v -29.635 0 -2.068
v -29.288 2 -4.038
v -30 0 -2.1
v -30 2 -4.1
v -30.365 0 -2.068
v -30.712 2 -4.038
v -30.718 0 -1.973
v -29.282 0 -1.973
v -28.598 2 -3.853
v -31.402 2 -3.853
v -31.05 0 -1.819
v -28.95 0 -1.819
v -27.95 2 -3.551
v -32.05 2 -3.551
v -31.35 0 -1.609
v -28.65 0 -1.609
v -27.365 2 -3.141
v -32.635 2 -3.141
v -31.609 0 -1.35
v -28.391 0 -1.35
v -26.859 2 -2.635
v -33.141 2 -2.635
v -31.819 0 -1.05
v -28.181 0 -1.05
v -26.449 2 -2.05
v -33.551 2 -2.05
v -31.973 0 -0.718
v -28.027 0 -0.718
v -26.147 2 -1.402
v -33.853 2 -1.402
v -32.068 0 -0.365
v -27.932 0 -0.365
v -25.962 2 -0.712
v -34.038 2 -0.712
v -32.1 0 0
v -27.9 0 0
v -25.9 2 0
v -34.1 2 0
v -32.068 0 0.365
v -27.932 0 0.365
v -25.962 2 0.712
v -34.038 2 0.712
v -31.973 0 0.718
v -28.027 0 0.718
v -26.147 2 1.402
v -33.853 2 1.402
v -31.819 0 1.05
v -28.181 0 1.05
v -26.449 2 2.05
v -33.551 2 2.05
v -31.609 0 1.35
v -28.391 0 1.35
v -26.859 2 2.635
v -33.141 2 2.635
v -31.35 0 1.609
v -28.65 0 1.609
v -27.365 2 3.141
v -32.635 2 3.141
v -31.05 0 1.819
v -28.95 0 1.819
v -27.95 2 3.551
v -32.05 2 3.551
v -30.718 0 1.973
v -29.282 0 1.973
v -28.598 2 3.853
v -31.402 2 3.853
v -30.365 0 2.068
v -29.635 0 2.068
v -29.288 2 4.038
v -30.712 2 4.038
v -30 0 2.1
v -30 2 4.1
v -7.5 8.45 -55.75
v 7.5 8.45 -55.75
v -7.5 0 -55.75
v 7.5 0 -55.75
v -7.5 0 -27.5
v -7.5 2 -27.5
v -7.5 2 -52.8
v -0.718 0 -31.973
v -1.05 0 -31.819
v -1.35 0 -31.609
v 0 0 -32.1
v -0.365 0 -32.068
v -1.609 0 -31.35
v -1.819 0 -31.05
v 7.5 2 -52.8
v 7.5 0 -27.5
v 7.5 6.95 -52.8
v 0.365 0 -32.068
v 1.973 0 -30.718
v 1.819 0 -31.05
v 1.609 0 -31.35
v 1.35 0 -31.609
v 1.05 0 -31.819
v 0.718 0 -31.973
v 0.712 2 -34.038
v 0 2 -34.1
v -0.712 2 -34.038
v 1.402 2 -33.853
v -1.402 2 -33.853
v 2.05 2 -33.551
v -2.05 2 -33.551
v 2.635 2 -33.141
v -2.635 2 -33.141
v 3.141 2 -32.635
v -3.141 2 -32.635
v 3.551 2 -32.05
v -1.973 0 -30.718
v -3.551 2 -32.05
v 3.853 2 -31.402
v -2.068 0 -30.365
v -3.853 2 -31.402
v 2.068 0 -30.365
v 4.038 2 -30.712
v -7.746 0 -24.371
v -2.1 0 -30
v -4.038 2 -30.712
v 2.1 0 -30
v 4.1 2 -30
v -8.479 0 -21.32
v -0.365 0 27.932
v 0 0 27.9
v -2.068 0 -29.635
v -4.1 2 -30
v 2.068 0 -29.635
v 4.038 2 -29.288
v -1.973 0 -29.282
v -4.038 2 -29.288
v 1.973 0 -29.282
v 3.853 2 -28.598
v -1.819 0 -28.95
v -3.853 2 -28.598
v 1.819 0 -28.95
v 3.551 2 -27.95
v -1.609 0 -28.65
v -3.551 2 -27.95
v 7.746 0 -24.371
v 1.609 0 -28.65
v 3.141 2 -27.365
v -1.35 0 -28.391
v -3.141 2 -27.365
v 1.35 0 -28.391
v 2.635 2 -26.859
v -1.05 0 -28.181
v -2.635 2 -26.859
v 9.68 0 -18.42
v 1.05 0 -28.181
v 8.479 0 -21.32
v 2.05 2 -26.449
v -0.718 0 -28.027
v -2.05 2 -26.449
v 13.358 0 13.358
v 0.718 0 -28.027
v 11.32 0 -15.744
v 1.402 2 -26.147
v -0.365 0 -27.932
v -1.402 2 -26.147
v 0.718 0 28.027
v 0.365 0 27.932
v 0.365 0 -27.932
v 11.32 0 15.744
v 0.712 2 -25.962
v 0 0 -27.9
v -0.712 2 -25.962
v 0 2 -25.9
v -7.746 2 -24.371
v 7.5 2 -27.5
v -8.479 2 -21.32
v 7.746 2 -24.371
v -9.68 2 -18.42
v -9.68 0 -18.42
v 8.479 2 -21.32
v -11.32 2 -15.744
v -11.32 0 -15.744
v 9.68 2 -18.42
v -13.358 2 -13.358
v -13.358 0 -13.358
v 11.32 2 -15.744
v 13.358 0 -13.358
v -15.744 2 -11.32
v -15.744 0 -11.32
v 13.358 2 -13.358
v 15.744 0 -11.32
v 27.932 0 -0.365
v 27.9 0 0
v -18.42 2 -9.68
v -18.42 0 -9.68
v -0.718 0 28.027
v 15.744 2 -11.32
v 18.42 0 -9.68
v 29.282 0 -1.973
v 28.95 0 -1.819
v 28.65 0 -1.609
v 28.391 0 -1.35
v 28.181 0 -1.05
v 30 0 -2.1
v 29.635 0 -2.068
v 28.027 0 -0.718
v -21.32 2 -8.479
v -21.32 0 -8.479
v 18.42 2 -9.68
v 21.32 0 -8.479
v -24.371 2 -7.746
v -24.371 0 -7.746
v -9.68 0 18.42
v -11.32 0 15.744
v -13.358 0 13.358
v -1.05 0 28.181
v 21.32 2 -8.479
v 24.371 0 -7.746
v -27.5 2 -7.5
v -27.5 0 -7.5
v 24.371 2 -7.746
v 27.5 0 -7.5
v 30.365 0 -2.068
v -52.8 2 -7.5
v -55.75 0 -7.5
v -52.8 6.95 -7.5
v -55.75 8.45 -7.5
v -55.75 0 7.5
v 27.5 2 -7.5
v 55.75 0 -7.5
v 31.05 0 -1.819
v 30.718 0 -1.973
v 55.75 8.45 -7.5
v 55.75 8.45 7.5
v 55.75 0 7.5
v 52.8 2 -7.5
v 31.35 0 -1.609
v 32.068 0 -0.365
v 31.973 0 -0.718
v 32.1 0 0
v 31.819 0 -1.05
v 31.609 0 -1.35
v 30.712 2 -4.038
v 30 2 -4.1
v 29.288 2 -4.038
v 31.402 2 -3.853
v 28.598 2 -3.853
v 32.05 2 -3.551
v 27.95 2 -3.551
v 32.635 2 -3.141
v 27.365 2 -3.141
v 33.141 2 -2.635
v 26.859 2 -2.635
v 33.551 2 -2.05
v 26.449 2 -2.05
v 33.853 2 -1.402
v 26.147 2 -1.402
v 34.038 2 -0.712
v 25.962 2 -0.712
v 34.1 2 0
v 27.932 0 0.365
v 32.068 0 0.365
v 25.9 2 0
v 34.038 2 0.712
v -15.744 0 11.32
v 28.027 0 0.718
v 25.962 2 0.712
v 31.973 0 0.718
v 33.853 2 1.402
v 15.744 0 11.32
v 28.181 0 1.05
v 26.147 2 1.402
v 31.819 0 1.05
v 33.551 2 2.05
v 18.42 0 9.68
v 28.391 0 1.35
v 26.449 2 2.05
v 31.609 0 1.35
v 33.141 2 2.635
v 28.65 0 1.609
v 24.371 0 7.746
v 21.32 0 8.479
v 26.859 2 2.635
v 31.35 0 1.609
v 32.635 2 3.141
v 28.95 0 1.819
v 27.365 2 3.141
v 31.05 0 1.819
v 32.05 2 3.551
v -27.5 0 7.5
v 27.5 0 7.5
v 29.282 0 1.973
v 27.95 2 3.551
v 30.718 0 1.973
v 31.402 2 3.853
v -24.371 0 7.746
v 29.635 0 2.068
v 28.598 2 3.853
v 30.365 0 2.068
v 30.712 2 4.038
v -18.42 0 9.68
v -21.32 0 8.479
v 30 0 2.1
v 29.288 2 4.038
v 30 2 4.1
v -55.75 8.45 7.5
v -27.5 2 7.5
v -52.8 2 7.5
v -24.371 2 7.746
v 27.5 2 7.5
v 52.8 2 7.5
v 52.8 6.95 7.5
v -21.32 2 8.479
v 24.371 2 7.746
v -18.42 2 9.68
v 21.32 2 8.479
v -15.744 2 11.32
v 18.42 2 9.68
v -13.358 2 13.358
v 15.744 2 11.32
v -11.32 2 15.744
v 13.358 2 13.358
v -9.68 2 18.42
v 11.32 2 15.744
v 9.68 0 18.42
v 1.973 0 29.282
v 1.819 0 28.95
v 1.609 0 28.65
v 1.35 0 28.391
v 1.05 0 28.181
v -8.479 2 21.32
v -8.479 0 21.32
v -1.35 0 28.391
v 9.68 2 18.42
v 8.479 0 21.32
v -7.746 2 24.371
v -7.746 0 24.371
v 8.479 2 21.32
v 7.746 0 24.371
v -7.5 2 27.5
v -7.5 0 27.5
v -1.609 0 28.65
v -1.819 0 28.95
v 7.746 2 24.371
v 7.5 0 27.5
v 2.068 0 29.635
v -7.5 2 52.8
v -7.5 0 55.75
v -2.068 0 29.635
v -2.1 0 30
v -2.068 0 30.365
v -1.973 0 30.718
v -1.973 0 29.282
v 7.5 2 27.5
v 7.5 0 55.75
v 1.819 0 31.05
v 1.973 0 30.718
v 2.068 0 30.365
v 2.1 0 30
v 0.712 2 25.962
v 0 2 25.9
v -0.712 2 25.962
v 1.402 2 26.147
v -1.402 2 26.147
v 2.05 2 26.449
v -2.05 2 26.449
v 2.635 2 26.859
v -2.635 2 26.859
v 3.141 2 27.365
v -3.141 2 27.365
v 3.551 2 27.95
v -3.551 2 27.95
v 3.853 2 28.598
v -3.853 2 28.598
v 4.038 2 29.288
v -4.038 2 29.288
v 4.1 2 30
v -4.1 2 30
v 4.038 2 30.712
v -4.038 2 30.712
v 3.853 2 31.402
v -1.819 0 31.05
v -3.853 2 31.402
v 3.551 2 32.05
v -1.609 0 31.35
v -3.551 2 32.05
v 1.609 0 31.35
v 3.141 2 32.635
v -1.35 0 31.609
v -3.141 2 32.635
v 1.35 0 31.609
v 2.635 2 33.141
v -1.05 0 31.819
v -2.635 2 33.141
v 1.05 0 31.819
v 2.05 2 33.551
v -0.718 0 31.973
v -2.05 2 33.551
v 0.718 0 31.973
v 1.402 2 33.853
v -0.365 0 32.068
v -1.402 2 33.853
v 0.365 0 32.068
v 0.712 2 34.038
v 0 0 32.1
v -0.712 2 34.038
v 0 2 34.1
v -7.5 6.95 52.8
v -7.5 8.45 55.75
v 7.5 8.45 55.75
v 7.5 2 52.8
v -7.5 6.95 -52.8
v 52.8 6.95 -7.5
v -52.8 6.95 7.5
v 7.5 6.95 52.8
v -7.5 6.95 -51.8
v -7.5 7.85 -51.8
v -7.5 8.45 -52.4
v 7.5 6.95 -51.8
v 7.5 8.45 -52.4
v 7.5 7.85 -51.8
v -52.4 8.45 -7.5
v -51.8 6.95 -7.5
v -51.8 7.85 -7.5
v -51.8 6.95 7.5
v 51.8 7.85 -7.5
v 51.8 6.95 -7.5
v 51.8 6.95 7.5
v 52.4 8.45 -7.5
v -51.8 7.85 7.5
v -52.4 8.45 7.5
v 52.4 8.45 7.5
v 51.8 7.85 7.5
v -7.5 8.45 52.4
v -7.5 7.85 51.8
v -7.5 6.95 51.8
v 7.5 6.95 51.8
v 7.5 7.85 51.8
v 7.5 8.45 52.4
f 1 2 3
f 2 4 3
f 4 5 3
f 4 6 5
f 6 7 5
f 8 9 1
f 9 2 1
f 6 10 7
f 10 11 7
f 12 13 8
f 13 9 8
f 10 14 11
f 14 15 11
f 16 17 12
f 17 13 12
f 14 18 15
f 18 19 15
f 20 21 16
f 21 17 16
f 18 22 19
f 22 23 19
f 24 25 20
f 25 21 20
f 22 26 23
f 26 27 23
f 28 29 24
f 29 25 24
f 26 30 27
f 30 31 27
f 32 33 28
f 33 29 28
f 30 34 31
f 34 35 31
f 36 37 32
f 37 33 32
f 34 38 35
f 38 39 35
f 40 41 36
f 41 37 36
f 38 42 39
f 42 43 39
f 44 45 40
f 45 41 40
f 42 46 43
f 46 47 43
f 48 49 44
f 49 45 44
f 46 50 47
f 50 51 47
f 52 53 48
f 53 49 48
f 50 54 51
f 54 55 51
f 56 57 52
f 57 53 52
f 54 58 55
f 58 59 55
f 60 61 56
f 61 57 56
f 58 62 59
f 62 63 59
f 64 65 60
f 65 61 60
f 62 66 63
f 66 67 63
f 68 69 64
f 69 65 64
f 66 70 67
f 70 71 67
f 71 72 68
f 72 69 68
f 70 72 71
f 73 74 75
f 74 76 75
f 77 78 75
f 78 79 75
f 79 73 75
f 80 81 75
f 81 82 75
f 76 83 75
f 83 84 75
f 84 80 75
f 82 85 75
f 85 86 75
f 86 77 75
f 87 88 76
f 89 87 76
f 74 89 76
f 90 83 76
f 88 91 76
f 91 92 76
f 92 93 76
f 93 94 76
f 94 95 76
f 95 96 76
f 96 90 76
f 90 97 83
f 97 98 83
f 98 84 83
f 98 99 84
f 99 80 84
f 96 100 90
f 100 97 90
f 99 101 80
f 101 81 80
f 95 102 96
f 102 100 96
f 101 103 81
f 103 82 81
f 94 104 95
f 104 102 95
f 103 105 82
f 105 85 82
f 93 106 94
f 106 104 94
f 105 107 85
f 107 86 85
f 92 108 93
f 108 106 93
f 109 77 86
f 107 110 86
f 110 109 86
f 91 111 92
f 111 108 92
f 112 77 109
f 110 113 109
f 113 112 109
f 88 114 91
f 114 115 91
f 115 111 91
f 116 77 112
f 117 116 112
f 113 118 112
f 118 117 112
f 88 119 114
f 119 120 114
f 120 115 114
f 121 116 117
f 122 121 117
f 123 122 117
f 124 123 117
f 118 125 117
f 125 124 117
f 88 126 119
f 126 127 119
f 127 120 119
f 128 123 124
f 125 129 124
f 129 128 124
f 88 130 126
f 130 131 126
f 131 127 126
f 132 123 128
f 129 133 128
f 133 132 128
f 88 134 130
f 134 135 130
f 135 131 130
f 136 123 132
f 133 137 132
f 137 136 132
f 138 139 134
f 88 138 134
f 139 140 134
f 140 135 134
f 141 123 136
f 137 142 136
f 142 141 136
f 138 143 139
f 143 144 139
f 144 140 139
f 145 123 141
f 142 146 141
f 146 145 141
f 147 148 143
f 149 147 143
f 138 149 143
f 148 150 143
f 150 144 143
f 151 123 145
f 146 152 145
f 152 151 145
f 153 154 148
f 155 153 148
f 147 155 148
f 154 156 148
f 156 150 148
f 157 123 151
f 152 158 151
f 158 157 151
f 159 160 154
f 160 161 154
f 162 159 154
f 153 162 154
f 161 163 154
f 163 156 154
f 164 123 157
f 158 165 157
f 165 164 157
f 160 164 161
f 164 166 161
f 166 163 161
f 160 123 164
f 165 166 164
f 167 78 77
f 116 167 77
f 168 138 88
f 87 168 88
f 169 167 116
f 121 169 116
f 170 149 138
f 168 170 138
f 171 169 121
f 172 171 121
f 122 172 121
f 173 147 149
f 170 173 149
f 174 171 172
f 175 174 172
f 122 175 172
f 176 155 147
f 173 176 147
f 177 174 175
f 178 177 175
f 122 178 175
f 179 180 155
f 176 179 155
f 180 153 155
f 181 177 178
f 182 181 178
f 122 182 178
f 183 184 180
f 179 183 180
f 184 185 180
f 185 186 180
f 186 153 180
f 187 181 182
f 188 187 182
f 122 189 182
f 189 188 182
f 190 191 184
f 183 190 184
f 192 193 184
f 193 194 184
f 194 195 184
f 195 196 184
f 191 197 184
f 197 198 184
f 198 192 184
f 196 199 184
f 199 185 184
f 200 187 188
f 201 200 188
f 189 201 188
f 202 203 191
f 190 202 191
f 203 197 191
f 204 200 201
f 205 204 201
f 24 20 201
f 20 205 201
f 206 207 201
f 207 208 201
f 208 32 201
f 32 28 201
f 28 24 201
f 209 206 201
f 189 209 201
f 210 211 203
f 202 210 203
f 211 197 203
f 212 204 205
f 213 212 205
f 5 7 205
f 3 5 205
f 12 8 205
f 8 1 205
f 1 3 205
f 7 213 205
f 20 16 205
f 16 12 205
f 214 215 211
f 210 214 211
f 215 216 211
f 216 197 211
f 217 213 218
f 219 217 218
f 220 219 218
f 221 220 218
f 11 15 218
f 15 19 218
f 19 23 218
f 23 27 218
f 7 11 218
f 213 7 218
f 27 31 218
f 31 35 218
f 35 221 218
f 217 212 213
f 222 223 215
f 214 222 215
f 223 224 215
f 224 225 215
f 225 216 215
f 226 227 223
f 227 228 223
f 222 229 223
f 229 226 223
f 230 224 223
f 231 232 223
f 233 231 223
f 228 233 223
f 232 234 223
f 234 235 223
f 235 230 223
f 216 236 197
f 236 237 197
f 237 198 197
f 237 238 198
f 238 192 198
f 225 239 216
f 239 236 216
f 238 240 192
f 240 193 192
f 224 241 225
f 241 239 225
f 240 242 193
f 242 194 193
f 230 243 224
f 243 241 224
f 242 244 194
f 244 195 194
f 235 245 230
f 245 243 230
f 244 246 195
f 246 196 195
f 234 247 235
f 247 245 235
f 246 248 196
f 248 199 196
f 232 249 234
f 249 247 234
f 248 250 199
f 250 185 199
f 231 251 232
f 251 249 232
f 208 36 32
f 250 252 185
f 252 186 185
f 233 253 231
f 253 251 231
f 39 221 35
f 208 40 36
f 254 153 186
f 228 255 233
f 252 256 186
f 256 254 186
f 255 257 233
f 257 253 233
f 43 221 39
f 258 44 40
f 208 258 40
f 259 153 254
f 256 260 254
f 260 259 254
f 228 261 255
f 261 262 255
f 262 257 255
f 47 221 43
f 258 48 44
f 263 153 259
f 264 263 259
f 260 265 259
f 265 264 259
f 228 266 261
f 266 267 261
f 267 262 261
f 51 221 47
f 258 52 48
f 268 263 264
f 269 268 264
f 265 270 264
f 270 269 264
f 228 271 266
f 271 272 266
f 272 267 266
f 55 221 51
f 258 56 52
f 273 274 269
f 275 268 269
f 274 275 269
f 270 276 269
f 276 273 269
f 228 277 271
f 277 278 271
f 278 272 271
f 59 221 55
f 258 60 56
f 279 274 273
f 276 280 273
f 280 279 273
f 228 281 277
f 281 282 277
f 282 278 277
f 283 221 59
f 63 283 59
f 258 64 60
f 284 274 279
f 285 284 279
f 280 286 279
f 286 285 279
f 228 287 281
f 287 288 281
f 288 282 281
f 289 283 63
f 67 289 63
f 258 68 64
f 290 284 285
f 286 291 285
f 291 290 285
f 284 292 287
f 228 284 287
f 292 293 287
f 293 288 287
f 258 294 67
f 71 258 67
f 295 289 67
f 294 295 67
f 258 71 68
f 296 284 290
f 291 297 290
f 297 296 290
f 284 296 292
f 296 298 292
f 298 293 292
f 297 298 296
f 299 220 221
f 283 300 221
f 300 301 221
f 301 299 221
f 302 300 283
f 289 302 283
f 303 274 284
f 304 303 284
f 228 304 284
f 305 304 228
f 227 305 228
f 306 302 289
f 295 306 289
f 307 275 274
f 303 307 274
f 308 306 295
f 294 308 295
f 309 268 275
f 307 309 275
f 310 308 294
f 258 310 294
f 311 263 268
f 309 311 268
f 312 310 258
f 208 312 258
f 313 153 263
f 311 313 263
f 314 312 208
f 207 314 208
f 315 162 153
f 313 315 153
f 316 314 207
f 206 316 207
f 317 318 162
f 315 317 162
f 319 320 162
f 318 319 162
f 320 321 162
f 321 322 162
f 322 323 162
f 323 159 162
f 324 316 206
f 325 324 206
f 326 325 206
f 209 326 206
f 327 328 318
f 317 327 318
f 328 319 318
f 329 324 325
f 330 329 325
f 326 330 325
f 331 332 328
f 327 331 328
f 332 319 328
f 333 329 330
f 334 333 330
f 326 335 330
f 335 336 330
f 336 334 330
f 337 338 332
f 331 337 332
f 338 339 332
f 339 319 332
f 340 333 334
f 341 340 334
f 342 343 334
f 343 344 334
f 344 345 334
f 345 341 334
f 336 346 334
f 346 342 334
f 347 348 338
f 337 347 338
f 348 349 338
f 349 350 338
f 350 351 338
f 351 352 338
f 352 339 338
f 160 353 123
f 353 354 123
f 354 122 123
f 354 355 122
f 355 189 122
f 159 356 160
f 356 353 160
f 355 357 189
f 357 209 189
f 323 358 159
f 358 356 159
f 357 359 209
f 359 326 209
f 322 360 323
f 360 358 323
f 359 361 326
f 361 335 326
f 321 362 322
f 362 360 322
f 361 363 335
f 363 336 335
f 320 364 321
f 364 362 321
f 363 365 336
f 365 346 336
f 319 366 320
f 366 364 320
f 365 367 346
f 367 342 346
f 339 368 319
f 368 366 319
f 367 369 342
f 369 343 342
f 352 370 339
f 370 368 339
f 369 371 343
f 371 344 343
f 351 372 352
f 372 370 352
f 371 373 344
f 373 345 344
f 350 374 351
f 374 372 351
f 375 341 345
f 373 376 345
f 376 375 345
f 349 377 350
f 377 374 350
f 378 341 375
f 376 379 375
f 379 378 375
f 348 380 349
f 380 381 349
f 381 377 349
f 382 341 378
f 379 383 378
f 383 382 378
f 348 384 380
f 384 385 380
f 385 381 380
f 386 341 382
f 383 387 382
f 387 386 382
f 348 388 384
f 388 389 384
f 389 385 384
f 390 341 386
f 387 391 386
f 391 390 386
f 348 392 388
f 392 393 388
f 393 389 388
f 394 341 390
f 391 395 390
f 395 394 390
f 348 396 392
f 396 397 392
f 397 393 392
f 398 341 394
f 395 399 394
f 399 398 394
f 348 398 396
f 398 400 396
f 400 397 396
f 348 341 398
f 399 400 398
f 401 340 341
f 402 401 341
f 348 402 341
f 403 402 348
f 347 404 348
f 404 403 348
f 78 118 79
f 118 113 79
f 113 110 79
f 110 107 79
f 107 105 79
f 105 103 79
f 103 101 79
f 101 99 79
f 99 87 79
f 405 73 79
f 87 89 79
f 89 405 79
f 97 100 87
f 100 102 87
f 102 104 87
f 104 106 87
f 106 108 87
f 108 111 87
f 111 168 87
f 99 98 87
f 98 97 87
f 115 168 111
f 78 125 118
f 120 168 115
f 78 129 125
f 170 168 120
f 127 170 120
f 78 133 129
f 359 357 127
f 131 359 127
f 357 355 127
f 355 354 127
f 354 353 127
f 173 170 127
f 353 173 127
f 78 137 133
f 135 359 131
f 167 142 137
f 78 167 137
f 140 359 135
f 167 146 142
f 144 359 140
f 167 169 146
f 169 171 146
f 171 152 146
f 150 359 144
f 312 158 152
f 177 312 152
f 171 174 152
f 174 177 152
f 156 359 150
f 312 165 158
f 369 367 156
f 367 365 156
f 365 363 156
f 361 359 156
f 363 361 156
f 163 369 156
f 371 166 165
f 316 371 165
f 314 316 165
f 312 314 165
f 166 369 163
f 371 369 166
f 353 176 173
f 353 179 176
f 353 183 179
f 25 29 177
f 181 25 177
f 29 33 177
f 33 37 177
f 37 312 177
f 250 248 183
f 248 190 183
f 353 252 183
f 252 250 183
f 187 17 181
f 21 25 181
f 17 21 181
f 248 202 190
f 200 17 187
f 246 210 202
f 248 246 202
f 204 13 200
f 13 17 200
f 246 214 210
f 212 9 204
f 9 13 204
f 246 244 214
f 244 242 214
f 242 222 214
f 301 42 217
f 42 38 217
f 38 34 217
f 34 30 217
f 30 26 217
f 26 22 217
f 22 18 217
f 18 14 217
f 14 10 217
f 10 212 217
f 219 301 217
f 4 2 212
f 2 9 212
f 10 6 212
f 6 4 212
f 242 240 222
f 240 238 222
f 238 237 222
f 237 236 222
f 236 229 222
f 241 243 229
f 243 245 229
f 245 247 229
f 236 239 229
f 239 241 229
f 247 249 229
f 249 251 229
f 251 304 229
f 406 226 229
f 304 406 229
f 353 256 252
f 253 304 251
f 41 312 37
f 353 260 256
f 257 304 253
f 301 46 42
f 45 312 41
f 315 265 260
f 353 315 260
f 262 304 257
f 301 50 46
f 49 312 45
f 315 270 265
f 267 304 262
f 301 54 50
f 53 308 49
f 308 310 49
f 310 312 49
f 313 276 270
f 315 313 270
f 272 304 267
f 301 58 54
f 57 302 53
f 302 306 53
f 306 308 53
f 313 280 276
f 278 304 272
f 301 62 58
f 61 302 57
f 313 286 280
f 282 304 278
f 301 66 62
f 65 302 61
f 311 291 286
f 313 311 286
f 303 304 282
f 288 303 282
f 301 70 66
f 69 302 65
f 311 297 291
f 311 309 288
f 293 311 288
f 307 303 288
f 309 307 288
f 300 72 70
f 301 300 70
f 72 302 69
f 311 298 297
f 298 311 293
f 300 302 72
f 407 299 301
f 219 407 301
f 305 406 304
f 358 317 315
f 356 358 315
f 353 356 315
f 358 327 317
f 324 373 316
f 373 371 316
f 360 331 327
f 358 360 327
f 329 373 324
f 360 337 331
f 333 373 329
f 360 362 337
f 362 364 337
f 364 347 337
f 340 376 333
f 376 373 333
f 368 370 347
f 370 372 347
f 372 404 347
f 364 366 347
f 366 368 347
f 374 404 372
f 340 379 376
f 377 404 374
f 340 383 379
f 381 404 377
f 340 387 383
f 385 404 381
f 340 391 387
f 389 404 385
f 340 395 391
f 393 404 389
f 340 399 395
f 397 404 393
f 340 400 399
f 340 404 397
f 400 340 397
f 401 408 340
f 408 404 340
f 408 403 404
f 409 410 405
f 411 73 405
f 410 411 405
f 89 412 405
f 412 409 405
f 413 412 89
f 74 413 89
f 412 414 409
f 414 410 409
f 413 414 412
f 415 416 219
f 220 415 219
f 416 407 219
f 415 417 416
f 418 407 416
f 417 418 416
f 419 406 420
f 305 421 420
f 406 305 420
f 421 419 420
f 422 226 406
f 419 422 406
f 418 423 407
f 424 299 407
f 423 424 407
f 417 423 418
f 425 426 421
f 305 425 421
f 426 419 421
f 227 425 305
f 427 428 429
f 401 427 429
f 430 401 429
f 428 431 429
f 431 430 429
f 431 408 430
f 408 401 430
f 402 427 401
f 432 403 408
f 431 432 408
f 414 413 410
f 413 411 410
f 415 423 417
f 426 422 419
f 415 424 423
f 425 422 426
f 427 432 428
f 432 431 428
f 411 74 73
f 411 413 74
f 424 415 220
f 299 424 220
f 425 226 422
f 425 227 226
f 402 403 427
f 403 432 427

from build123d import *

# Parameters (mm, degrees)
BOSS_EXTRUDE1_DEPTH                            = 2
BOSS_EXTRUDE3_DEPTH                            = 15
BOSS_EXTRUDE4_DEPTH                            = 15
CSK_FOR_M3_5_FLAT_HEAD_MACHINE_SCREW1_AT_COUNT = 2
CSK_FOR_M3_5_FLAT_HEAD_MACHINE_SCREW1_AT_PITCH = 42.426406871
CSK_FOR_M3_5_FLAT_HEAD_MACHINE_SCREW_2_COUNT   = 2
CSK_FOR_M3_5_FLAT_HEAD_MACHINE_SCREW_2_PITCH   = 60
CSK_FOR_M3_5_FLAT_HEAD_MACHINE_SCREW_3_COUNT   = 2
CSK_FOR_M3_5_FLAT_HEAD_MACHINE_SCREW_3_PITCH   = 42.426406871


with BuildPart() as part:
    # Sketch1 → Boss-Extrude1 (new body)
    with BuildSketch(Plane(origin=(0, 0, 0), x_dir=(1, 0, 0), z_dir=(0, 1, 0))):
        with BuildLine():
            Line((-7.5, 55.75), (-7.5, 27.5))
            ThreePointArc((-7.5, 27.5), (-13.357864376, 13.357864376), (-27.5, 7.5))
            Line((-27.5, 7.5), (-55.75, 7.5))
            Line((-55.75, 7.5), (-55.75, -7.5))
            Line((-55.75, -7.5), (-27.5, -7.5))
            ThreePointArc((-27.5, -7.5), (-13.357864376, -13.357864376), (-7.5, -27.5))
            Line((-7.5, -27.5), (-7.5, -55.75))
            Line((-7.5, -55.75), (7.5, -55.75))
            Line((7.5, -55.75), (7.5, -27.5))
            ThreePointArc((7.5, -27.5), (13.357864376, -13.357864376), (27.5, -7.5))
            Line((27.5, -7.5), (55.75, -7.5))
            Line((55.75, -7.5), (55.75, 7.5))
            Line((55.75, 7.5), (27.5, 7.5))
            ThreePointArc((27.5, 7.5), (13.357864376, 13.357864376), (7.5, 27.5))
            Line((7.5, 27.5), (7.5, 55.75))
            Line((7.5, 55.75), (-7.5, 55.75))
        make_face()
    extrude(amount=BOSS_EXTRUDE1_DEPTH)

    # Sketch3 → Boss-Extrude3 (add)
    with BuildSketch(Plane(origin=(7.5, 0, 0), x_dir=(0, 0, -1), z_dir=(1, 0, 0))):
        Polygon((55.75, 2), (55.75, 8.45), (52.4, 8.45), (51.8, 7.85), (51.8, 6.95), (52.8, 6.95), (52.8, 2), align=None)
    boss_extrude3 = extrude(amount=-BOSS_EXTRUDE3_DEPTH)

    # Mirror1: Boss-Extrude3 across plane
    add(boss_extrude3.mirror(Plane.XY))

    # Sketch6 → Boss-Extrude4 (add)
    with BuildSketch(Plane(origin=(0, 0, -7.5), x_dir=(-1, 0, 0), z_dir=(0, 0, -1))):
        Polygon((55.75, 2), (55.75, 8.45), (52.4, 8.45), (51.8, 7.85), (51.8, 6.95), (52.8, 6.95), (52.8, 2), align=None)
    boss_extrude4 = extrude(amount=-BOSS_EXTRUDE4_DEPTH)

    # Mirror2: Boss-Extrude4 across plane
    add(boss_extrude4.mirror(Plane(origin=(0, 0, 0), x_dir=(0, 0, 1), z_dir=(1, 0, 0))))

    # Sketch9 → CSK for M3.5 Flat Head Machine Screw1 (revolve, cut)
    with BuildSketch(Plane(origin=(0, 2, 30), x_dir=(0, 0, 1), z_dir=(1, 0, 0))):
        Polygon((0, 0), (0, 2), (1.95, 2), (1.95, 2.15), (4.1, 0), align=None)
    csk_for_m3_5_flat_head_machine_screw1 = revolve(axis=Axis((0, 8.35, 30), (0, -1, 0)), mode=Mode.SUBTRACT)

    # CSK for M3.5 Flat Head Machine Screw1 at: CSK for M3.5 Flat Head Machine Screw1 ×2
    with Locations(*[Vector(-0.707106781, 0, -0.707106781) * (i * CSK_FOR_M3_5_FLAT_HEAD_MACHINE_SCREW1_AT_PITCH) for i in range(1, CSK_FOR_M3_5_FLAT_HEAD_MACHINE_SCREW1_AT_COUNT)]):
        add(csk_for_m3_5_flat_head_machine_screw1, mode=Mode.SUBTRACT)

    # CSK for M3.5 Flat Head Machine Screw 2: CSK for M3.5 Flat Head Machine Screw1 ×2
    with Locations(*[(0, 0, -i * CSK_FOR_M3_5_FLAT_HEAD_MACHINE_SCREW_2_PITCH) for i in range(1, CSK_FOR_M3_5_FLAT_HEAD_MACHINE_SCREW_2_COUNT)]):
        add(csk_for_m3_5_flat_head_machine_screw1, mode=Mode.SUBTRACT)

    # CSK for M3.5 Flat Head Machine Screw 3: CSK for M3.5 Flat Head Machine Screw1 ×2
    with Locations(*[Vector(0.707106781, 0, -0.707106781) * (i * CSK_FOR_M3_5_FLAT_HEAD_MACHINE_SCREW_3_PITCH) for i in range(1, CSK_FOR_M3_5_FLAT_HEAD_MACHINE_SCREW_3_COUNT)]):
        add(csk_for_m3_5_flat_head_machine_screw1, mode=Mode.SUBTRACT)


solid = part.part
